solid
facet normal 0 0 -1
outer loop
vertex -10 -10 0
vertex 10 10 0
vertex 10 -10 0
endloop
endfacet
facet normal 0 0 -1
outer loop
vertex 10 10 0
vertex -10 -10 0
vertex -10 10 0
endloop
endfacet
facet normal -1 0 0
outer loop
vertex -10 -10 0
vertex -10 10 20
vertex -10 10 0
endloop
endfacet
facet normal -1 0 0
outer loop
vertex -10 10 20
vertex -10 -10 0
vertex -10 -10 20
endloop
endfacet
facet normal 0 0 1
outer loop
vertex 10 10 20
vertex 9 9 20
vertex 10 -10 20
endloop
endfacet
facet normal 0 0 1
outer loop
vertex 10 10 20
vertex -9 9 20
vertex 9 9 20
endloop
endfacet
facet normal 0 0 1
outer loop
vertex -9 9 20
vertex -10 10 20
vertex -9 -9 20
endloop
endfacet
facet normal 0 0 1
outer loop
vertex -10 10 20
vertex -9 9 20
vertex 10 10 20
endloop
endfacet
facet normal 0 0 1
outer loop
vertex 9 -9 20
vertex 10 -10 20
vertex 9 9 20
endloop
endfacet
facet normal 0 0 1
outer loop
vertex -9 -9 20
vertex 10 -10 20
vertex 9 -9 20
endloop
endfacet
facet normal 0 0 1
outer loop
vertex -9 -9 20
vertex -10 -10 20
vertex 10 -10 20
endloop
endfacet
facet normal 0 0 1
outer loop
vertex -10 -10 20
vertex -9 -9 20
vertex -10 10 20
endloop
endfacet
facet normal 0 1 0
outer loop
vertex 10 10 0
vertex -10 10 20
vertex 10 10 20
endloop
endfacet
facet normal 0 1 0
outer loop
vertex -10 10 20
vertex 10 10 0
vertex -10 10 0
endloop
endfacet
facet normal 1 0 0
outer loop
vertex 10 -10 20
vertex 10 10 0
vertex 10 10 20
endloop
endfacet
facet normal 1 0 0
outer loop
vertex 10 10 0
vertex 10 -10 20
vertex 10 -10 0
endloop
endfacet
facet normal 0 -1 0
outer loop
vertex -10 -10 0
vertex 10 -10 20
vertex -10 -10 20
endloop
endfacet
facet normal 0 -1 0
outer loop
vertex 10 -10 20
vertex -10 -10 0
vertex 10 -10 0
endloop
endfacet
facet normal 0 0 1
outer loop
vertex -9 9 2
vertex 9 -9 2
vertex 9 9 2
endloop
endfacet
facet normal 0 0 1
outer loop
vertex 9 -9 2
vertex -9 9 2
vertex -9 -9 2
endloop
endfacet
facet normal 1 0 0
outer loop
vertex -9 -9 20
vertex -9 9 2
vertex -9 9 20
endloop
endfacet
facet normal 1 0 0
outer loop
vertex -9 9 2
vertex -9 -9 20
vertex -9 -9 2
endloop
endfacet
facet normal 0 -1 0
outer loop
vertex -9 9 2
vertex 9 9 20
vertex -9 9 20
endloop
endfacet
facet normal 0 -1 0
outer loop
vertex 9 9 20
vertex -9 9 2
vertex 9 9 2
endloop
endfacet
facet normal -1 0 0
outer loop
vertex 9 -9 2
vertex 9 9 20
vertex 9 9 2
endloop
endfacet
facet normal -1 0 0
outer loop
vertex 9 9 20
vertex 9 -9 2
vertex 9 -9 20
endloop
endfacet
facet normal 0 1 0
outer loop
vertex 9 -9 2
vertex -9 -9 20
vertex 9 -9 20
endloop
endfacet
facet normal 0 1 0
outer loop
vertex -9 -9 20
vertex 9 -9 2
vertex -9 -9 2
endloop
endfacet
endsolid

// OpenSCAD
length=20 ;
width=20 ;
height1=20; 

hollowThickness=2 ; 

module outerCube(){
    linear_extrude(height=height1) square([length,width],center=true) ; 
}


module innerCube(){
    translate([0,0,hollowThickness]) linear_extrude(height=height1) square([length-hollowThickness,width-hollowThickness],center=true) ; 
}


difference(){
    color("yellow",0.1) outerCube() ; 
    color("red") innerCube() ; 
}
